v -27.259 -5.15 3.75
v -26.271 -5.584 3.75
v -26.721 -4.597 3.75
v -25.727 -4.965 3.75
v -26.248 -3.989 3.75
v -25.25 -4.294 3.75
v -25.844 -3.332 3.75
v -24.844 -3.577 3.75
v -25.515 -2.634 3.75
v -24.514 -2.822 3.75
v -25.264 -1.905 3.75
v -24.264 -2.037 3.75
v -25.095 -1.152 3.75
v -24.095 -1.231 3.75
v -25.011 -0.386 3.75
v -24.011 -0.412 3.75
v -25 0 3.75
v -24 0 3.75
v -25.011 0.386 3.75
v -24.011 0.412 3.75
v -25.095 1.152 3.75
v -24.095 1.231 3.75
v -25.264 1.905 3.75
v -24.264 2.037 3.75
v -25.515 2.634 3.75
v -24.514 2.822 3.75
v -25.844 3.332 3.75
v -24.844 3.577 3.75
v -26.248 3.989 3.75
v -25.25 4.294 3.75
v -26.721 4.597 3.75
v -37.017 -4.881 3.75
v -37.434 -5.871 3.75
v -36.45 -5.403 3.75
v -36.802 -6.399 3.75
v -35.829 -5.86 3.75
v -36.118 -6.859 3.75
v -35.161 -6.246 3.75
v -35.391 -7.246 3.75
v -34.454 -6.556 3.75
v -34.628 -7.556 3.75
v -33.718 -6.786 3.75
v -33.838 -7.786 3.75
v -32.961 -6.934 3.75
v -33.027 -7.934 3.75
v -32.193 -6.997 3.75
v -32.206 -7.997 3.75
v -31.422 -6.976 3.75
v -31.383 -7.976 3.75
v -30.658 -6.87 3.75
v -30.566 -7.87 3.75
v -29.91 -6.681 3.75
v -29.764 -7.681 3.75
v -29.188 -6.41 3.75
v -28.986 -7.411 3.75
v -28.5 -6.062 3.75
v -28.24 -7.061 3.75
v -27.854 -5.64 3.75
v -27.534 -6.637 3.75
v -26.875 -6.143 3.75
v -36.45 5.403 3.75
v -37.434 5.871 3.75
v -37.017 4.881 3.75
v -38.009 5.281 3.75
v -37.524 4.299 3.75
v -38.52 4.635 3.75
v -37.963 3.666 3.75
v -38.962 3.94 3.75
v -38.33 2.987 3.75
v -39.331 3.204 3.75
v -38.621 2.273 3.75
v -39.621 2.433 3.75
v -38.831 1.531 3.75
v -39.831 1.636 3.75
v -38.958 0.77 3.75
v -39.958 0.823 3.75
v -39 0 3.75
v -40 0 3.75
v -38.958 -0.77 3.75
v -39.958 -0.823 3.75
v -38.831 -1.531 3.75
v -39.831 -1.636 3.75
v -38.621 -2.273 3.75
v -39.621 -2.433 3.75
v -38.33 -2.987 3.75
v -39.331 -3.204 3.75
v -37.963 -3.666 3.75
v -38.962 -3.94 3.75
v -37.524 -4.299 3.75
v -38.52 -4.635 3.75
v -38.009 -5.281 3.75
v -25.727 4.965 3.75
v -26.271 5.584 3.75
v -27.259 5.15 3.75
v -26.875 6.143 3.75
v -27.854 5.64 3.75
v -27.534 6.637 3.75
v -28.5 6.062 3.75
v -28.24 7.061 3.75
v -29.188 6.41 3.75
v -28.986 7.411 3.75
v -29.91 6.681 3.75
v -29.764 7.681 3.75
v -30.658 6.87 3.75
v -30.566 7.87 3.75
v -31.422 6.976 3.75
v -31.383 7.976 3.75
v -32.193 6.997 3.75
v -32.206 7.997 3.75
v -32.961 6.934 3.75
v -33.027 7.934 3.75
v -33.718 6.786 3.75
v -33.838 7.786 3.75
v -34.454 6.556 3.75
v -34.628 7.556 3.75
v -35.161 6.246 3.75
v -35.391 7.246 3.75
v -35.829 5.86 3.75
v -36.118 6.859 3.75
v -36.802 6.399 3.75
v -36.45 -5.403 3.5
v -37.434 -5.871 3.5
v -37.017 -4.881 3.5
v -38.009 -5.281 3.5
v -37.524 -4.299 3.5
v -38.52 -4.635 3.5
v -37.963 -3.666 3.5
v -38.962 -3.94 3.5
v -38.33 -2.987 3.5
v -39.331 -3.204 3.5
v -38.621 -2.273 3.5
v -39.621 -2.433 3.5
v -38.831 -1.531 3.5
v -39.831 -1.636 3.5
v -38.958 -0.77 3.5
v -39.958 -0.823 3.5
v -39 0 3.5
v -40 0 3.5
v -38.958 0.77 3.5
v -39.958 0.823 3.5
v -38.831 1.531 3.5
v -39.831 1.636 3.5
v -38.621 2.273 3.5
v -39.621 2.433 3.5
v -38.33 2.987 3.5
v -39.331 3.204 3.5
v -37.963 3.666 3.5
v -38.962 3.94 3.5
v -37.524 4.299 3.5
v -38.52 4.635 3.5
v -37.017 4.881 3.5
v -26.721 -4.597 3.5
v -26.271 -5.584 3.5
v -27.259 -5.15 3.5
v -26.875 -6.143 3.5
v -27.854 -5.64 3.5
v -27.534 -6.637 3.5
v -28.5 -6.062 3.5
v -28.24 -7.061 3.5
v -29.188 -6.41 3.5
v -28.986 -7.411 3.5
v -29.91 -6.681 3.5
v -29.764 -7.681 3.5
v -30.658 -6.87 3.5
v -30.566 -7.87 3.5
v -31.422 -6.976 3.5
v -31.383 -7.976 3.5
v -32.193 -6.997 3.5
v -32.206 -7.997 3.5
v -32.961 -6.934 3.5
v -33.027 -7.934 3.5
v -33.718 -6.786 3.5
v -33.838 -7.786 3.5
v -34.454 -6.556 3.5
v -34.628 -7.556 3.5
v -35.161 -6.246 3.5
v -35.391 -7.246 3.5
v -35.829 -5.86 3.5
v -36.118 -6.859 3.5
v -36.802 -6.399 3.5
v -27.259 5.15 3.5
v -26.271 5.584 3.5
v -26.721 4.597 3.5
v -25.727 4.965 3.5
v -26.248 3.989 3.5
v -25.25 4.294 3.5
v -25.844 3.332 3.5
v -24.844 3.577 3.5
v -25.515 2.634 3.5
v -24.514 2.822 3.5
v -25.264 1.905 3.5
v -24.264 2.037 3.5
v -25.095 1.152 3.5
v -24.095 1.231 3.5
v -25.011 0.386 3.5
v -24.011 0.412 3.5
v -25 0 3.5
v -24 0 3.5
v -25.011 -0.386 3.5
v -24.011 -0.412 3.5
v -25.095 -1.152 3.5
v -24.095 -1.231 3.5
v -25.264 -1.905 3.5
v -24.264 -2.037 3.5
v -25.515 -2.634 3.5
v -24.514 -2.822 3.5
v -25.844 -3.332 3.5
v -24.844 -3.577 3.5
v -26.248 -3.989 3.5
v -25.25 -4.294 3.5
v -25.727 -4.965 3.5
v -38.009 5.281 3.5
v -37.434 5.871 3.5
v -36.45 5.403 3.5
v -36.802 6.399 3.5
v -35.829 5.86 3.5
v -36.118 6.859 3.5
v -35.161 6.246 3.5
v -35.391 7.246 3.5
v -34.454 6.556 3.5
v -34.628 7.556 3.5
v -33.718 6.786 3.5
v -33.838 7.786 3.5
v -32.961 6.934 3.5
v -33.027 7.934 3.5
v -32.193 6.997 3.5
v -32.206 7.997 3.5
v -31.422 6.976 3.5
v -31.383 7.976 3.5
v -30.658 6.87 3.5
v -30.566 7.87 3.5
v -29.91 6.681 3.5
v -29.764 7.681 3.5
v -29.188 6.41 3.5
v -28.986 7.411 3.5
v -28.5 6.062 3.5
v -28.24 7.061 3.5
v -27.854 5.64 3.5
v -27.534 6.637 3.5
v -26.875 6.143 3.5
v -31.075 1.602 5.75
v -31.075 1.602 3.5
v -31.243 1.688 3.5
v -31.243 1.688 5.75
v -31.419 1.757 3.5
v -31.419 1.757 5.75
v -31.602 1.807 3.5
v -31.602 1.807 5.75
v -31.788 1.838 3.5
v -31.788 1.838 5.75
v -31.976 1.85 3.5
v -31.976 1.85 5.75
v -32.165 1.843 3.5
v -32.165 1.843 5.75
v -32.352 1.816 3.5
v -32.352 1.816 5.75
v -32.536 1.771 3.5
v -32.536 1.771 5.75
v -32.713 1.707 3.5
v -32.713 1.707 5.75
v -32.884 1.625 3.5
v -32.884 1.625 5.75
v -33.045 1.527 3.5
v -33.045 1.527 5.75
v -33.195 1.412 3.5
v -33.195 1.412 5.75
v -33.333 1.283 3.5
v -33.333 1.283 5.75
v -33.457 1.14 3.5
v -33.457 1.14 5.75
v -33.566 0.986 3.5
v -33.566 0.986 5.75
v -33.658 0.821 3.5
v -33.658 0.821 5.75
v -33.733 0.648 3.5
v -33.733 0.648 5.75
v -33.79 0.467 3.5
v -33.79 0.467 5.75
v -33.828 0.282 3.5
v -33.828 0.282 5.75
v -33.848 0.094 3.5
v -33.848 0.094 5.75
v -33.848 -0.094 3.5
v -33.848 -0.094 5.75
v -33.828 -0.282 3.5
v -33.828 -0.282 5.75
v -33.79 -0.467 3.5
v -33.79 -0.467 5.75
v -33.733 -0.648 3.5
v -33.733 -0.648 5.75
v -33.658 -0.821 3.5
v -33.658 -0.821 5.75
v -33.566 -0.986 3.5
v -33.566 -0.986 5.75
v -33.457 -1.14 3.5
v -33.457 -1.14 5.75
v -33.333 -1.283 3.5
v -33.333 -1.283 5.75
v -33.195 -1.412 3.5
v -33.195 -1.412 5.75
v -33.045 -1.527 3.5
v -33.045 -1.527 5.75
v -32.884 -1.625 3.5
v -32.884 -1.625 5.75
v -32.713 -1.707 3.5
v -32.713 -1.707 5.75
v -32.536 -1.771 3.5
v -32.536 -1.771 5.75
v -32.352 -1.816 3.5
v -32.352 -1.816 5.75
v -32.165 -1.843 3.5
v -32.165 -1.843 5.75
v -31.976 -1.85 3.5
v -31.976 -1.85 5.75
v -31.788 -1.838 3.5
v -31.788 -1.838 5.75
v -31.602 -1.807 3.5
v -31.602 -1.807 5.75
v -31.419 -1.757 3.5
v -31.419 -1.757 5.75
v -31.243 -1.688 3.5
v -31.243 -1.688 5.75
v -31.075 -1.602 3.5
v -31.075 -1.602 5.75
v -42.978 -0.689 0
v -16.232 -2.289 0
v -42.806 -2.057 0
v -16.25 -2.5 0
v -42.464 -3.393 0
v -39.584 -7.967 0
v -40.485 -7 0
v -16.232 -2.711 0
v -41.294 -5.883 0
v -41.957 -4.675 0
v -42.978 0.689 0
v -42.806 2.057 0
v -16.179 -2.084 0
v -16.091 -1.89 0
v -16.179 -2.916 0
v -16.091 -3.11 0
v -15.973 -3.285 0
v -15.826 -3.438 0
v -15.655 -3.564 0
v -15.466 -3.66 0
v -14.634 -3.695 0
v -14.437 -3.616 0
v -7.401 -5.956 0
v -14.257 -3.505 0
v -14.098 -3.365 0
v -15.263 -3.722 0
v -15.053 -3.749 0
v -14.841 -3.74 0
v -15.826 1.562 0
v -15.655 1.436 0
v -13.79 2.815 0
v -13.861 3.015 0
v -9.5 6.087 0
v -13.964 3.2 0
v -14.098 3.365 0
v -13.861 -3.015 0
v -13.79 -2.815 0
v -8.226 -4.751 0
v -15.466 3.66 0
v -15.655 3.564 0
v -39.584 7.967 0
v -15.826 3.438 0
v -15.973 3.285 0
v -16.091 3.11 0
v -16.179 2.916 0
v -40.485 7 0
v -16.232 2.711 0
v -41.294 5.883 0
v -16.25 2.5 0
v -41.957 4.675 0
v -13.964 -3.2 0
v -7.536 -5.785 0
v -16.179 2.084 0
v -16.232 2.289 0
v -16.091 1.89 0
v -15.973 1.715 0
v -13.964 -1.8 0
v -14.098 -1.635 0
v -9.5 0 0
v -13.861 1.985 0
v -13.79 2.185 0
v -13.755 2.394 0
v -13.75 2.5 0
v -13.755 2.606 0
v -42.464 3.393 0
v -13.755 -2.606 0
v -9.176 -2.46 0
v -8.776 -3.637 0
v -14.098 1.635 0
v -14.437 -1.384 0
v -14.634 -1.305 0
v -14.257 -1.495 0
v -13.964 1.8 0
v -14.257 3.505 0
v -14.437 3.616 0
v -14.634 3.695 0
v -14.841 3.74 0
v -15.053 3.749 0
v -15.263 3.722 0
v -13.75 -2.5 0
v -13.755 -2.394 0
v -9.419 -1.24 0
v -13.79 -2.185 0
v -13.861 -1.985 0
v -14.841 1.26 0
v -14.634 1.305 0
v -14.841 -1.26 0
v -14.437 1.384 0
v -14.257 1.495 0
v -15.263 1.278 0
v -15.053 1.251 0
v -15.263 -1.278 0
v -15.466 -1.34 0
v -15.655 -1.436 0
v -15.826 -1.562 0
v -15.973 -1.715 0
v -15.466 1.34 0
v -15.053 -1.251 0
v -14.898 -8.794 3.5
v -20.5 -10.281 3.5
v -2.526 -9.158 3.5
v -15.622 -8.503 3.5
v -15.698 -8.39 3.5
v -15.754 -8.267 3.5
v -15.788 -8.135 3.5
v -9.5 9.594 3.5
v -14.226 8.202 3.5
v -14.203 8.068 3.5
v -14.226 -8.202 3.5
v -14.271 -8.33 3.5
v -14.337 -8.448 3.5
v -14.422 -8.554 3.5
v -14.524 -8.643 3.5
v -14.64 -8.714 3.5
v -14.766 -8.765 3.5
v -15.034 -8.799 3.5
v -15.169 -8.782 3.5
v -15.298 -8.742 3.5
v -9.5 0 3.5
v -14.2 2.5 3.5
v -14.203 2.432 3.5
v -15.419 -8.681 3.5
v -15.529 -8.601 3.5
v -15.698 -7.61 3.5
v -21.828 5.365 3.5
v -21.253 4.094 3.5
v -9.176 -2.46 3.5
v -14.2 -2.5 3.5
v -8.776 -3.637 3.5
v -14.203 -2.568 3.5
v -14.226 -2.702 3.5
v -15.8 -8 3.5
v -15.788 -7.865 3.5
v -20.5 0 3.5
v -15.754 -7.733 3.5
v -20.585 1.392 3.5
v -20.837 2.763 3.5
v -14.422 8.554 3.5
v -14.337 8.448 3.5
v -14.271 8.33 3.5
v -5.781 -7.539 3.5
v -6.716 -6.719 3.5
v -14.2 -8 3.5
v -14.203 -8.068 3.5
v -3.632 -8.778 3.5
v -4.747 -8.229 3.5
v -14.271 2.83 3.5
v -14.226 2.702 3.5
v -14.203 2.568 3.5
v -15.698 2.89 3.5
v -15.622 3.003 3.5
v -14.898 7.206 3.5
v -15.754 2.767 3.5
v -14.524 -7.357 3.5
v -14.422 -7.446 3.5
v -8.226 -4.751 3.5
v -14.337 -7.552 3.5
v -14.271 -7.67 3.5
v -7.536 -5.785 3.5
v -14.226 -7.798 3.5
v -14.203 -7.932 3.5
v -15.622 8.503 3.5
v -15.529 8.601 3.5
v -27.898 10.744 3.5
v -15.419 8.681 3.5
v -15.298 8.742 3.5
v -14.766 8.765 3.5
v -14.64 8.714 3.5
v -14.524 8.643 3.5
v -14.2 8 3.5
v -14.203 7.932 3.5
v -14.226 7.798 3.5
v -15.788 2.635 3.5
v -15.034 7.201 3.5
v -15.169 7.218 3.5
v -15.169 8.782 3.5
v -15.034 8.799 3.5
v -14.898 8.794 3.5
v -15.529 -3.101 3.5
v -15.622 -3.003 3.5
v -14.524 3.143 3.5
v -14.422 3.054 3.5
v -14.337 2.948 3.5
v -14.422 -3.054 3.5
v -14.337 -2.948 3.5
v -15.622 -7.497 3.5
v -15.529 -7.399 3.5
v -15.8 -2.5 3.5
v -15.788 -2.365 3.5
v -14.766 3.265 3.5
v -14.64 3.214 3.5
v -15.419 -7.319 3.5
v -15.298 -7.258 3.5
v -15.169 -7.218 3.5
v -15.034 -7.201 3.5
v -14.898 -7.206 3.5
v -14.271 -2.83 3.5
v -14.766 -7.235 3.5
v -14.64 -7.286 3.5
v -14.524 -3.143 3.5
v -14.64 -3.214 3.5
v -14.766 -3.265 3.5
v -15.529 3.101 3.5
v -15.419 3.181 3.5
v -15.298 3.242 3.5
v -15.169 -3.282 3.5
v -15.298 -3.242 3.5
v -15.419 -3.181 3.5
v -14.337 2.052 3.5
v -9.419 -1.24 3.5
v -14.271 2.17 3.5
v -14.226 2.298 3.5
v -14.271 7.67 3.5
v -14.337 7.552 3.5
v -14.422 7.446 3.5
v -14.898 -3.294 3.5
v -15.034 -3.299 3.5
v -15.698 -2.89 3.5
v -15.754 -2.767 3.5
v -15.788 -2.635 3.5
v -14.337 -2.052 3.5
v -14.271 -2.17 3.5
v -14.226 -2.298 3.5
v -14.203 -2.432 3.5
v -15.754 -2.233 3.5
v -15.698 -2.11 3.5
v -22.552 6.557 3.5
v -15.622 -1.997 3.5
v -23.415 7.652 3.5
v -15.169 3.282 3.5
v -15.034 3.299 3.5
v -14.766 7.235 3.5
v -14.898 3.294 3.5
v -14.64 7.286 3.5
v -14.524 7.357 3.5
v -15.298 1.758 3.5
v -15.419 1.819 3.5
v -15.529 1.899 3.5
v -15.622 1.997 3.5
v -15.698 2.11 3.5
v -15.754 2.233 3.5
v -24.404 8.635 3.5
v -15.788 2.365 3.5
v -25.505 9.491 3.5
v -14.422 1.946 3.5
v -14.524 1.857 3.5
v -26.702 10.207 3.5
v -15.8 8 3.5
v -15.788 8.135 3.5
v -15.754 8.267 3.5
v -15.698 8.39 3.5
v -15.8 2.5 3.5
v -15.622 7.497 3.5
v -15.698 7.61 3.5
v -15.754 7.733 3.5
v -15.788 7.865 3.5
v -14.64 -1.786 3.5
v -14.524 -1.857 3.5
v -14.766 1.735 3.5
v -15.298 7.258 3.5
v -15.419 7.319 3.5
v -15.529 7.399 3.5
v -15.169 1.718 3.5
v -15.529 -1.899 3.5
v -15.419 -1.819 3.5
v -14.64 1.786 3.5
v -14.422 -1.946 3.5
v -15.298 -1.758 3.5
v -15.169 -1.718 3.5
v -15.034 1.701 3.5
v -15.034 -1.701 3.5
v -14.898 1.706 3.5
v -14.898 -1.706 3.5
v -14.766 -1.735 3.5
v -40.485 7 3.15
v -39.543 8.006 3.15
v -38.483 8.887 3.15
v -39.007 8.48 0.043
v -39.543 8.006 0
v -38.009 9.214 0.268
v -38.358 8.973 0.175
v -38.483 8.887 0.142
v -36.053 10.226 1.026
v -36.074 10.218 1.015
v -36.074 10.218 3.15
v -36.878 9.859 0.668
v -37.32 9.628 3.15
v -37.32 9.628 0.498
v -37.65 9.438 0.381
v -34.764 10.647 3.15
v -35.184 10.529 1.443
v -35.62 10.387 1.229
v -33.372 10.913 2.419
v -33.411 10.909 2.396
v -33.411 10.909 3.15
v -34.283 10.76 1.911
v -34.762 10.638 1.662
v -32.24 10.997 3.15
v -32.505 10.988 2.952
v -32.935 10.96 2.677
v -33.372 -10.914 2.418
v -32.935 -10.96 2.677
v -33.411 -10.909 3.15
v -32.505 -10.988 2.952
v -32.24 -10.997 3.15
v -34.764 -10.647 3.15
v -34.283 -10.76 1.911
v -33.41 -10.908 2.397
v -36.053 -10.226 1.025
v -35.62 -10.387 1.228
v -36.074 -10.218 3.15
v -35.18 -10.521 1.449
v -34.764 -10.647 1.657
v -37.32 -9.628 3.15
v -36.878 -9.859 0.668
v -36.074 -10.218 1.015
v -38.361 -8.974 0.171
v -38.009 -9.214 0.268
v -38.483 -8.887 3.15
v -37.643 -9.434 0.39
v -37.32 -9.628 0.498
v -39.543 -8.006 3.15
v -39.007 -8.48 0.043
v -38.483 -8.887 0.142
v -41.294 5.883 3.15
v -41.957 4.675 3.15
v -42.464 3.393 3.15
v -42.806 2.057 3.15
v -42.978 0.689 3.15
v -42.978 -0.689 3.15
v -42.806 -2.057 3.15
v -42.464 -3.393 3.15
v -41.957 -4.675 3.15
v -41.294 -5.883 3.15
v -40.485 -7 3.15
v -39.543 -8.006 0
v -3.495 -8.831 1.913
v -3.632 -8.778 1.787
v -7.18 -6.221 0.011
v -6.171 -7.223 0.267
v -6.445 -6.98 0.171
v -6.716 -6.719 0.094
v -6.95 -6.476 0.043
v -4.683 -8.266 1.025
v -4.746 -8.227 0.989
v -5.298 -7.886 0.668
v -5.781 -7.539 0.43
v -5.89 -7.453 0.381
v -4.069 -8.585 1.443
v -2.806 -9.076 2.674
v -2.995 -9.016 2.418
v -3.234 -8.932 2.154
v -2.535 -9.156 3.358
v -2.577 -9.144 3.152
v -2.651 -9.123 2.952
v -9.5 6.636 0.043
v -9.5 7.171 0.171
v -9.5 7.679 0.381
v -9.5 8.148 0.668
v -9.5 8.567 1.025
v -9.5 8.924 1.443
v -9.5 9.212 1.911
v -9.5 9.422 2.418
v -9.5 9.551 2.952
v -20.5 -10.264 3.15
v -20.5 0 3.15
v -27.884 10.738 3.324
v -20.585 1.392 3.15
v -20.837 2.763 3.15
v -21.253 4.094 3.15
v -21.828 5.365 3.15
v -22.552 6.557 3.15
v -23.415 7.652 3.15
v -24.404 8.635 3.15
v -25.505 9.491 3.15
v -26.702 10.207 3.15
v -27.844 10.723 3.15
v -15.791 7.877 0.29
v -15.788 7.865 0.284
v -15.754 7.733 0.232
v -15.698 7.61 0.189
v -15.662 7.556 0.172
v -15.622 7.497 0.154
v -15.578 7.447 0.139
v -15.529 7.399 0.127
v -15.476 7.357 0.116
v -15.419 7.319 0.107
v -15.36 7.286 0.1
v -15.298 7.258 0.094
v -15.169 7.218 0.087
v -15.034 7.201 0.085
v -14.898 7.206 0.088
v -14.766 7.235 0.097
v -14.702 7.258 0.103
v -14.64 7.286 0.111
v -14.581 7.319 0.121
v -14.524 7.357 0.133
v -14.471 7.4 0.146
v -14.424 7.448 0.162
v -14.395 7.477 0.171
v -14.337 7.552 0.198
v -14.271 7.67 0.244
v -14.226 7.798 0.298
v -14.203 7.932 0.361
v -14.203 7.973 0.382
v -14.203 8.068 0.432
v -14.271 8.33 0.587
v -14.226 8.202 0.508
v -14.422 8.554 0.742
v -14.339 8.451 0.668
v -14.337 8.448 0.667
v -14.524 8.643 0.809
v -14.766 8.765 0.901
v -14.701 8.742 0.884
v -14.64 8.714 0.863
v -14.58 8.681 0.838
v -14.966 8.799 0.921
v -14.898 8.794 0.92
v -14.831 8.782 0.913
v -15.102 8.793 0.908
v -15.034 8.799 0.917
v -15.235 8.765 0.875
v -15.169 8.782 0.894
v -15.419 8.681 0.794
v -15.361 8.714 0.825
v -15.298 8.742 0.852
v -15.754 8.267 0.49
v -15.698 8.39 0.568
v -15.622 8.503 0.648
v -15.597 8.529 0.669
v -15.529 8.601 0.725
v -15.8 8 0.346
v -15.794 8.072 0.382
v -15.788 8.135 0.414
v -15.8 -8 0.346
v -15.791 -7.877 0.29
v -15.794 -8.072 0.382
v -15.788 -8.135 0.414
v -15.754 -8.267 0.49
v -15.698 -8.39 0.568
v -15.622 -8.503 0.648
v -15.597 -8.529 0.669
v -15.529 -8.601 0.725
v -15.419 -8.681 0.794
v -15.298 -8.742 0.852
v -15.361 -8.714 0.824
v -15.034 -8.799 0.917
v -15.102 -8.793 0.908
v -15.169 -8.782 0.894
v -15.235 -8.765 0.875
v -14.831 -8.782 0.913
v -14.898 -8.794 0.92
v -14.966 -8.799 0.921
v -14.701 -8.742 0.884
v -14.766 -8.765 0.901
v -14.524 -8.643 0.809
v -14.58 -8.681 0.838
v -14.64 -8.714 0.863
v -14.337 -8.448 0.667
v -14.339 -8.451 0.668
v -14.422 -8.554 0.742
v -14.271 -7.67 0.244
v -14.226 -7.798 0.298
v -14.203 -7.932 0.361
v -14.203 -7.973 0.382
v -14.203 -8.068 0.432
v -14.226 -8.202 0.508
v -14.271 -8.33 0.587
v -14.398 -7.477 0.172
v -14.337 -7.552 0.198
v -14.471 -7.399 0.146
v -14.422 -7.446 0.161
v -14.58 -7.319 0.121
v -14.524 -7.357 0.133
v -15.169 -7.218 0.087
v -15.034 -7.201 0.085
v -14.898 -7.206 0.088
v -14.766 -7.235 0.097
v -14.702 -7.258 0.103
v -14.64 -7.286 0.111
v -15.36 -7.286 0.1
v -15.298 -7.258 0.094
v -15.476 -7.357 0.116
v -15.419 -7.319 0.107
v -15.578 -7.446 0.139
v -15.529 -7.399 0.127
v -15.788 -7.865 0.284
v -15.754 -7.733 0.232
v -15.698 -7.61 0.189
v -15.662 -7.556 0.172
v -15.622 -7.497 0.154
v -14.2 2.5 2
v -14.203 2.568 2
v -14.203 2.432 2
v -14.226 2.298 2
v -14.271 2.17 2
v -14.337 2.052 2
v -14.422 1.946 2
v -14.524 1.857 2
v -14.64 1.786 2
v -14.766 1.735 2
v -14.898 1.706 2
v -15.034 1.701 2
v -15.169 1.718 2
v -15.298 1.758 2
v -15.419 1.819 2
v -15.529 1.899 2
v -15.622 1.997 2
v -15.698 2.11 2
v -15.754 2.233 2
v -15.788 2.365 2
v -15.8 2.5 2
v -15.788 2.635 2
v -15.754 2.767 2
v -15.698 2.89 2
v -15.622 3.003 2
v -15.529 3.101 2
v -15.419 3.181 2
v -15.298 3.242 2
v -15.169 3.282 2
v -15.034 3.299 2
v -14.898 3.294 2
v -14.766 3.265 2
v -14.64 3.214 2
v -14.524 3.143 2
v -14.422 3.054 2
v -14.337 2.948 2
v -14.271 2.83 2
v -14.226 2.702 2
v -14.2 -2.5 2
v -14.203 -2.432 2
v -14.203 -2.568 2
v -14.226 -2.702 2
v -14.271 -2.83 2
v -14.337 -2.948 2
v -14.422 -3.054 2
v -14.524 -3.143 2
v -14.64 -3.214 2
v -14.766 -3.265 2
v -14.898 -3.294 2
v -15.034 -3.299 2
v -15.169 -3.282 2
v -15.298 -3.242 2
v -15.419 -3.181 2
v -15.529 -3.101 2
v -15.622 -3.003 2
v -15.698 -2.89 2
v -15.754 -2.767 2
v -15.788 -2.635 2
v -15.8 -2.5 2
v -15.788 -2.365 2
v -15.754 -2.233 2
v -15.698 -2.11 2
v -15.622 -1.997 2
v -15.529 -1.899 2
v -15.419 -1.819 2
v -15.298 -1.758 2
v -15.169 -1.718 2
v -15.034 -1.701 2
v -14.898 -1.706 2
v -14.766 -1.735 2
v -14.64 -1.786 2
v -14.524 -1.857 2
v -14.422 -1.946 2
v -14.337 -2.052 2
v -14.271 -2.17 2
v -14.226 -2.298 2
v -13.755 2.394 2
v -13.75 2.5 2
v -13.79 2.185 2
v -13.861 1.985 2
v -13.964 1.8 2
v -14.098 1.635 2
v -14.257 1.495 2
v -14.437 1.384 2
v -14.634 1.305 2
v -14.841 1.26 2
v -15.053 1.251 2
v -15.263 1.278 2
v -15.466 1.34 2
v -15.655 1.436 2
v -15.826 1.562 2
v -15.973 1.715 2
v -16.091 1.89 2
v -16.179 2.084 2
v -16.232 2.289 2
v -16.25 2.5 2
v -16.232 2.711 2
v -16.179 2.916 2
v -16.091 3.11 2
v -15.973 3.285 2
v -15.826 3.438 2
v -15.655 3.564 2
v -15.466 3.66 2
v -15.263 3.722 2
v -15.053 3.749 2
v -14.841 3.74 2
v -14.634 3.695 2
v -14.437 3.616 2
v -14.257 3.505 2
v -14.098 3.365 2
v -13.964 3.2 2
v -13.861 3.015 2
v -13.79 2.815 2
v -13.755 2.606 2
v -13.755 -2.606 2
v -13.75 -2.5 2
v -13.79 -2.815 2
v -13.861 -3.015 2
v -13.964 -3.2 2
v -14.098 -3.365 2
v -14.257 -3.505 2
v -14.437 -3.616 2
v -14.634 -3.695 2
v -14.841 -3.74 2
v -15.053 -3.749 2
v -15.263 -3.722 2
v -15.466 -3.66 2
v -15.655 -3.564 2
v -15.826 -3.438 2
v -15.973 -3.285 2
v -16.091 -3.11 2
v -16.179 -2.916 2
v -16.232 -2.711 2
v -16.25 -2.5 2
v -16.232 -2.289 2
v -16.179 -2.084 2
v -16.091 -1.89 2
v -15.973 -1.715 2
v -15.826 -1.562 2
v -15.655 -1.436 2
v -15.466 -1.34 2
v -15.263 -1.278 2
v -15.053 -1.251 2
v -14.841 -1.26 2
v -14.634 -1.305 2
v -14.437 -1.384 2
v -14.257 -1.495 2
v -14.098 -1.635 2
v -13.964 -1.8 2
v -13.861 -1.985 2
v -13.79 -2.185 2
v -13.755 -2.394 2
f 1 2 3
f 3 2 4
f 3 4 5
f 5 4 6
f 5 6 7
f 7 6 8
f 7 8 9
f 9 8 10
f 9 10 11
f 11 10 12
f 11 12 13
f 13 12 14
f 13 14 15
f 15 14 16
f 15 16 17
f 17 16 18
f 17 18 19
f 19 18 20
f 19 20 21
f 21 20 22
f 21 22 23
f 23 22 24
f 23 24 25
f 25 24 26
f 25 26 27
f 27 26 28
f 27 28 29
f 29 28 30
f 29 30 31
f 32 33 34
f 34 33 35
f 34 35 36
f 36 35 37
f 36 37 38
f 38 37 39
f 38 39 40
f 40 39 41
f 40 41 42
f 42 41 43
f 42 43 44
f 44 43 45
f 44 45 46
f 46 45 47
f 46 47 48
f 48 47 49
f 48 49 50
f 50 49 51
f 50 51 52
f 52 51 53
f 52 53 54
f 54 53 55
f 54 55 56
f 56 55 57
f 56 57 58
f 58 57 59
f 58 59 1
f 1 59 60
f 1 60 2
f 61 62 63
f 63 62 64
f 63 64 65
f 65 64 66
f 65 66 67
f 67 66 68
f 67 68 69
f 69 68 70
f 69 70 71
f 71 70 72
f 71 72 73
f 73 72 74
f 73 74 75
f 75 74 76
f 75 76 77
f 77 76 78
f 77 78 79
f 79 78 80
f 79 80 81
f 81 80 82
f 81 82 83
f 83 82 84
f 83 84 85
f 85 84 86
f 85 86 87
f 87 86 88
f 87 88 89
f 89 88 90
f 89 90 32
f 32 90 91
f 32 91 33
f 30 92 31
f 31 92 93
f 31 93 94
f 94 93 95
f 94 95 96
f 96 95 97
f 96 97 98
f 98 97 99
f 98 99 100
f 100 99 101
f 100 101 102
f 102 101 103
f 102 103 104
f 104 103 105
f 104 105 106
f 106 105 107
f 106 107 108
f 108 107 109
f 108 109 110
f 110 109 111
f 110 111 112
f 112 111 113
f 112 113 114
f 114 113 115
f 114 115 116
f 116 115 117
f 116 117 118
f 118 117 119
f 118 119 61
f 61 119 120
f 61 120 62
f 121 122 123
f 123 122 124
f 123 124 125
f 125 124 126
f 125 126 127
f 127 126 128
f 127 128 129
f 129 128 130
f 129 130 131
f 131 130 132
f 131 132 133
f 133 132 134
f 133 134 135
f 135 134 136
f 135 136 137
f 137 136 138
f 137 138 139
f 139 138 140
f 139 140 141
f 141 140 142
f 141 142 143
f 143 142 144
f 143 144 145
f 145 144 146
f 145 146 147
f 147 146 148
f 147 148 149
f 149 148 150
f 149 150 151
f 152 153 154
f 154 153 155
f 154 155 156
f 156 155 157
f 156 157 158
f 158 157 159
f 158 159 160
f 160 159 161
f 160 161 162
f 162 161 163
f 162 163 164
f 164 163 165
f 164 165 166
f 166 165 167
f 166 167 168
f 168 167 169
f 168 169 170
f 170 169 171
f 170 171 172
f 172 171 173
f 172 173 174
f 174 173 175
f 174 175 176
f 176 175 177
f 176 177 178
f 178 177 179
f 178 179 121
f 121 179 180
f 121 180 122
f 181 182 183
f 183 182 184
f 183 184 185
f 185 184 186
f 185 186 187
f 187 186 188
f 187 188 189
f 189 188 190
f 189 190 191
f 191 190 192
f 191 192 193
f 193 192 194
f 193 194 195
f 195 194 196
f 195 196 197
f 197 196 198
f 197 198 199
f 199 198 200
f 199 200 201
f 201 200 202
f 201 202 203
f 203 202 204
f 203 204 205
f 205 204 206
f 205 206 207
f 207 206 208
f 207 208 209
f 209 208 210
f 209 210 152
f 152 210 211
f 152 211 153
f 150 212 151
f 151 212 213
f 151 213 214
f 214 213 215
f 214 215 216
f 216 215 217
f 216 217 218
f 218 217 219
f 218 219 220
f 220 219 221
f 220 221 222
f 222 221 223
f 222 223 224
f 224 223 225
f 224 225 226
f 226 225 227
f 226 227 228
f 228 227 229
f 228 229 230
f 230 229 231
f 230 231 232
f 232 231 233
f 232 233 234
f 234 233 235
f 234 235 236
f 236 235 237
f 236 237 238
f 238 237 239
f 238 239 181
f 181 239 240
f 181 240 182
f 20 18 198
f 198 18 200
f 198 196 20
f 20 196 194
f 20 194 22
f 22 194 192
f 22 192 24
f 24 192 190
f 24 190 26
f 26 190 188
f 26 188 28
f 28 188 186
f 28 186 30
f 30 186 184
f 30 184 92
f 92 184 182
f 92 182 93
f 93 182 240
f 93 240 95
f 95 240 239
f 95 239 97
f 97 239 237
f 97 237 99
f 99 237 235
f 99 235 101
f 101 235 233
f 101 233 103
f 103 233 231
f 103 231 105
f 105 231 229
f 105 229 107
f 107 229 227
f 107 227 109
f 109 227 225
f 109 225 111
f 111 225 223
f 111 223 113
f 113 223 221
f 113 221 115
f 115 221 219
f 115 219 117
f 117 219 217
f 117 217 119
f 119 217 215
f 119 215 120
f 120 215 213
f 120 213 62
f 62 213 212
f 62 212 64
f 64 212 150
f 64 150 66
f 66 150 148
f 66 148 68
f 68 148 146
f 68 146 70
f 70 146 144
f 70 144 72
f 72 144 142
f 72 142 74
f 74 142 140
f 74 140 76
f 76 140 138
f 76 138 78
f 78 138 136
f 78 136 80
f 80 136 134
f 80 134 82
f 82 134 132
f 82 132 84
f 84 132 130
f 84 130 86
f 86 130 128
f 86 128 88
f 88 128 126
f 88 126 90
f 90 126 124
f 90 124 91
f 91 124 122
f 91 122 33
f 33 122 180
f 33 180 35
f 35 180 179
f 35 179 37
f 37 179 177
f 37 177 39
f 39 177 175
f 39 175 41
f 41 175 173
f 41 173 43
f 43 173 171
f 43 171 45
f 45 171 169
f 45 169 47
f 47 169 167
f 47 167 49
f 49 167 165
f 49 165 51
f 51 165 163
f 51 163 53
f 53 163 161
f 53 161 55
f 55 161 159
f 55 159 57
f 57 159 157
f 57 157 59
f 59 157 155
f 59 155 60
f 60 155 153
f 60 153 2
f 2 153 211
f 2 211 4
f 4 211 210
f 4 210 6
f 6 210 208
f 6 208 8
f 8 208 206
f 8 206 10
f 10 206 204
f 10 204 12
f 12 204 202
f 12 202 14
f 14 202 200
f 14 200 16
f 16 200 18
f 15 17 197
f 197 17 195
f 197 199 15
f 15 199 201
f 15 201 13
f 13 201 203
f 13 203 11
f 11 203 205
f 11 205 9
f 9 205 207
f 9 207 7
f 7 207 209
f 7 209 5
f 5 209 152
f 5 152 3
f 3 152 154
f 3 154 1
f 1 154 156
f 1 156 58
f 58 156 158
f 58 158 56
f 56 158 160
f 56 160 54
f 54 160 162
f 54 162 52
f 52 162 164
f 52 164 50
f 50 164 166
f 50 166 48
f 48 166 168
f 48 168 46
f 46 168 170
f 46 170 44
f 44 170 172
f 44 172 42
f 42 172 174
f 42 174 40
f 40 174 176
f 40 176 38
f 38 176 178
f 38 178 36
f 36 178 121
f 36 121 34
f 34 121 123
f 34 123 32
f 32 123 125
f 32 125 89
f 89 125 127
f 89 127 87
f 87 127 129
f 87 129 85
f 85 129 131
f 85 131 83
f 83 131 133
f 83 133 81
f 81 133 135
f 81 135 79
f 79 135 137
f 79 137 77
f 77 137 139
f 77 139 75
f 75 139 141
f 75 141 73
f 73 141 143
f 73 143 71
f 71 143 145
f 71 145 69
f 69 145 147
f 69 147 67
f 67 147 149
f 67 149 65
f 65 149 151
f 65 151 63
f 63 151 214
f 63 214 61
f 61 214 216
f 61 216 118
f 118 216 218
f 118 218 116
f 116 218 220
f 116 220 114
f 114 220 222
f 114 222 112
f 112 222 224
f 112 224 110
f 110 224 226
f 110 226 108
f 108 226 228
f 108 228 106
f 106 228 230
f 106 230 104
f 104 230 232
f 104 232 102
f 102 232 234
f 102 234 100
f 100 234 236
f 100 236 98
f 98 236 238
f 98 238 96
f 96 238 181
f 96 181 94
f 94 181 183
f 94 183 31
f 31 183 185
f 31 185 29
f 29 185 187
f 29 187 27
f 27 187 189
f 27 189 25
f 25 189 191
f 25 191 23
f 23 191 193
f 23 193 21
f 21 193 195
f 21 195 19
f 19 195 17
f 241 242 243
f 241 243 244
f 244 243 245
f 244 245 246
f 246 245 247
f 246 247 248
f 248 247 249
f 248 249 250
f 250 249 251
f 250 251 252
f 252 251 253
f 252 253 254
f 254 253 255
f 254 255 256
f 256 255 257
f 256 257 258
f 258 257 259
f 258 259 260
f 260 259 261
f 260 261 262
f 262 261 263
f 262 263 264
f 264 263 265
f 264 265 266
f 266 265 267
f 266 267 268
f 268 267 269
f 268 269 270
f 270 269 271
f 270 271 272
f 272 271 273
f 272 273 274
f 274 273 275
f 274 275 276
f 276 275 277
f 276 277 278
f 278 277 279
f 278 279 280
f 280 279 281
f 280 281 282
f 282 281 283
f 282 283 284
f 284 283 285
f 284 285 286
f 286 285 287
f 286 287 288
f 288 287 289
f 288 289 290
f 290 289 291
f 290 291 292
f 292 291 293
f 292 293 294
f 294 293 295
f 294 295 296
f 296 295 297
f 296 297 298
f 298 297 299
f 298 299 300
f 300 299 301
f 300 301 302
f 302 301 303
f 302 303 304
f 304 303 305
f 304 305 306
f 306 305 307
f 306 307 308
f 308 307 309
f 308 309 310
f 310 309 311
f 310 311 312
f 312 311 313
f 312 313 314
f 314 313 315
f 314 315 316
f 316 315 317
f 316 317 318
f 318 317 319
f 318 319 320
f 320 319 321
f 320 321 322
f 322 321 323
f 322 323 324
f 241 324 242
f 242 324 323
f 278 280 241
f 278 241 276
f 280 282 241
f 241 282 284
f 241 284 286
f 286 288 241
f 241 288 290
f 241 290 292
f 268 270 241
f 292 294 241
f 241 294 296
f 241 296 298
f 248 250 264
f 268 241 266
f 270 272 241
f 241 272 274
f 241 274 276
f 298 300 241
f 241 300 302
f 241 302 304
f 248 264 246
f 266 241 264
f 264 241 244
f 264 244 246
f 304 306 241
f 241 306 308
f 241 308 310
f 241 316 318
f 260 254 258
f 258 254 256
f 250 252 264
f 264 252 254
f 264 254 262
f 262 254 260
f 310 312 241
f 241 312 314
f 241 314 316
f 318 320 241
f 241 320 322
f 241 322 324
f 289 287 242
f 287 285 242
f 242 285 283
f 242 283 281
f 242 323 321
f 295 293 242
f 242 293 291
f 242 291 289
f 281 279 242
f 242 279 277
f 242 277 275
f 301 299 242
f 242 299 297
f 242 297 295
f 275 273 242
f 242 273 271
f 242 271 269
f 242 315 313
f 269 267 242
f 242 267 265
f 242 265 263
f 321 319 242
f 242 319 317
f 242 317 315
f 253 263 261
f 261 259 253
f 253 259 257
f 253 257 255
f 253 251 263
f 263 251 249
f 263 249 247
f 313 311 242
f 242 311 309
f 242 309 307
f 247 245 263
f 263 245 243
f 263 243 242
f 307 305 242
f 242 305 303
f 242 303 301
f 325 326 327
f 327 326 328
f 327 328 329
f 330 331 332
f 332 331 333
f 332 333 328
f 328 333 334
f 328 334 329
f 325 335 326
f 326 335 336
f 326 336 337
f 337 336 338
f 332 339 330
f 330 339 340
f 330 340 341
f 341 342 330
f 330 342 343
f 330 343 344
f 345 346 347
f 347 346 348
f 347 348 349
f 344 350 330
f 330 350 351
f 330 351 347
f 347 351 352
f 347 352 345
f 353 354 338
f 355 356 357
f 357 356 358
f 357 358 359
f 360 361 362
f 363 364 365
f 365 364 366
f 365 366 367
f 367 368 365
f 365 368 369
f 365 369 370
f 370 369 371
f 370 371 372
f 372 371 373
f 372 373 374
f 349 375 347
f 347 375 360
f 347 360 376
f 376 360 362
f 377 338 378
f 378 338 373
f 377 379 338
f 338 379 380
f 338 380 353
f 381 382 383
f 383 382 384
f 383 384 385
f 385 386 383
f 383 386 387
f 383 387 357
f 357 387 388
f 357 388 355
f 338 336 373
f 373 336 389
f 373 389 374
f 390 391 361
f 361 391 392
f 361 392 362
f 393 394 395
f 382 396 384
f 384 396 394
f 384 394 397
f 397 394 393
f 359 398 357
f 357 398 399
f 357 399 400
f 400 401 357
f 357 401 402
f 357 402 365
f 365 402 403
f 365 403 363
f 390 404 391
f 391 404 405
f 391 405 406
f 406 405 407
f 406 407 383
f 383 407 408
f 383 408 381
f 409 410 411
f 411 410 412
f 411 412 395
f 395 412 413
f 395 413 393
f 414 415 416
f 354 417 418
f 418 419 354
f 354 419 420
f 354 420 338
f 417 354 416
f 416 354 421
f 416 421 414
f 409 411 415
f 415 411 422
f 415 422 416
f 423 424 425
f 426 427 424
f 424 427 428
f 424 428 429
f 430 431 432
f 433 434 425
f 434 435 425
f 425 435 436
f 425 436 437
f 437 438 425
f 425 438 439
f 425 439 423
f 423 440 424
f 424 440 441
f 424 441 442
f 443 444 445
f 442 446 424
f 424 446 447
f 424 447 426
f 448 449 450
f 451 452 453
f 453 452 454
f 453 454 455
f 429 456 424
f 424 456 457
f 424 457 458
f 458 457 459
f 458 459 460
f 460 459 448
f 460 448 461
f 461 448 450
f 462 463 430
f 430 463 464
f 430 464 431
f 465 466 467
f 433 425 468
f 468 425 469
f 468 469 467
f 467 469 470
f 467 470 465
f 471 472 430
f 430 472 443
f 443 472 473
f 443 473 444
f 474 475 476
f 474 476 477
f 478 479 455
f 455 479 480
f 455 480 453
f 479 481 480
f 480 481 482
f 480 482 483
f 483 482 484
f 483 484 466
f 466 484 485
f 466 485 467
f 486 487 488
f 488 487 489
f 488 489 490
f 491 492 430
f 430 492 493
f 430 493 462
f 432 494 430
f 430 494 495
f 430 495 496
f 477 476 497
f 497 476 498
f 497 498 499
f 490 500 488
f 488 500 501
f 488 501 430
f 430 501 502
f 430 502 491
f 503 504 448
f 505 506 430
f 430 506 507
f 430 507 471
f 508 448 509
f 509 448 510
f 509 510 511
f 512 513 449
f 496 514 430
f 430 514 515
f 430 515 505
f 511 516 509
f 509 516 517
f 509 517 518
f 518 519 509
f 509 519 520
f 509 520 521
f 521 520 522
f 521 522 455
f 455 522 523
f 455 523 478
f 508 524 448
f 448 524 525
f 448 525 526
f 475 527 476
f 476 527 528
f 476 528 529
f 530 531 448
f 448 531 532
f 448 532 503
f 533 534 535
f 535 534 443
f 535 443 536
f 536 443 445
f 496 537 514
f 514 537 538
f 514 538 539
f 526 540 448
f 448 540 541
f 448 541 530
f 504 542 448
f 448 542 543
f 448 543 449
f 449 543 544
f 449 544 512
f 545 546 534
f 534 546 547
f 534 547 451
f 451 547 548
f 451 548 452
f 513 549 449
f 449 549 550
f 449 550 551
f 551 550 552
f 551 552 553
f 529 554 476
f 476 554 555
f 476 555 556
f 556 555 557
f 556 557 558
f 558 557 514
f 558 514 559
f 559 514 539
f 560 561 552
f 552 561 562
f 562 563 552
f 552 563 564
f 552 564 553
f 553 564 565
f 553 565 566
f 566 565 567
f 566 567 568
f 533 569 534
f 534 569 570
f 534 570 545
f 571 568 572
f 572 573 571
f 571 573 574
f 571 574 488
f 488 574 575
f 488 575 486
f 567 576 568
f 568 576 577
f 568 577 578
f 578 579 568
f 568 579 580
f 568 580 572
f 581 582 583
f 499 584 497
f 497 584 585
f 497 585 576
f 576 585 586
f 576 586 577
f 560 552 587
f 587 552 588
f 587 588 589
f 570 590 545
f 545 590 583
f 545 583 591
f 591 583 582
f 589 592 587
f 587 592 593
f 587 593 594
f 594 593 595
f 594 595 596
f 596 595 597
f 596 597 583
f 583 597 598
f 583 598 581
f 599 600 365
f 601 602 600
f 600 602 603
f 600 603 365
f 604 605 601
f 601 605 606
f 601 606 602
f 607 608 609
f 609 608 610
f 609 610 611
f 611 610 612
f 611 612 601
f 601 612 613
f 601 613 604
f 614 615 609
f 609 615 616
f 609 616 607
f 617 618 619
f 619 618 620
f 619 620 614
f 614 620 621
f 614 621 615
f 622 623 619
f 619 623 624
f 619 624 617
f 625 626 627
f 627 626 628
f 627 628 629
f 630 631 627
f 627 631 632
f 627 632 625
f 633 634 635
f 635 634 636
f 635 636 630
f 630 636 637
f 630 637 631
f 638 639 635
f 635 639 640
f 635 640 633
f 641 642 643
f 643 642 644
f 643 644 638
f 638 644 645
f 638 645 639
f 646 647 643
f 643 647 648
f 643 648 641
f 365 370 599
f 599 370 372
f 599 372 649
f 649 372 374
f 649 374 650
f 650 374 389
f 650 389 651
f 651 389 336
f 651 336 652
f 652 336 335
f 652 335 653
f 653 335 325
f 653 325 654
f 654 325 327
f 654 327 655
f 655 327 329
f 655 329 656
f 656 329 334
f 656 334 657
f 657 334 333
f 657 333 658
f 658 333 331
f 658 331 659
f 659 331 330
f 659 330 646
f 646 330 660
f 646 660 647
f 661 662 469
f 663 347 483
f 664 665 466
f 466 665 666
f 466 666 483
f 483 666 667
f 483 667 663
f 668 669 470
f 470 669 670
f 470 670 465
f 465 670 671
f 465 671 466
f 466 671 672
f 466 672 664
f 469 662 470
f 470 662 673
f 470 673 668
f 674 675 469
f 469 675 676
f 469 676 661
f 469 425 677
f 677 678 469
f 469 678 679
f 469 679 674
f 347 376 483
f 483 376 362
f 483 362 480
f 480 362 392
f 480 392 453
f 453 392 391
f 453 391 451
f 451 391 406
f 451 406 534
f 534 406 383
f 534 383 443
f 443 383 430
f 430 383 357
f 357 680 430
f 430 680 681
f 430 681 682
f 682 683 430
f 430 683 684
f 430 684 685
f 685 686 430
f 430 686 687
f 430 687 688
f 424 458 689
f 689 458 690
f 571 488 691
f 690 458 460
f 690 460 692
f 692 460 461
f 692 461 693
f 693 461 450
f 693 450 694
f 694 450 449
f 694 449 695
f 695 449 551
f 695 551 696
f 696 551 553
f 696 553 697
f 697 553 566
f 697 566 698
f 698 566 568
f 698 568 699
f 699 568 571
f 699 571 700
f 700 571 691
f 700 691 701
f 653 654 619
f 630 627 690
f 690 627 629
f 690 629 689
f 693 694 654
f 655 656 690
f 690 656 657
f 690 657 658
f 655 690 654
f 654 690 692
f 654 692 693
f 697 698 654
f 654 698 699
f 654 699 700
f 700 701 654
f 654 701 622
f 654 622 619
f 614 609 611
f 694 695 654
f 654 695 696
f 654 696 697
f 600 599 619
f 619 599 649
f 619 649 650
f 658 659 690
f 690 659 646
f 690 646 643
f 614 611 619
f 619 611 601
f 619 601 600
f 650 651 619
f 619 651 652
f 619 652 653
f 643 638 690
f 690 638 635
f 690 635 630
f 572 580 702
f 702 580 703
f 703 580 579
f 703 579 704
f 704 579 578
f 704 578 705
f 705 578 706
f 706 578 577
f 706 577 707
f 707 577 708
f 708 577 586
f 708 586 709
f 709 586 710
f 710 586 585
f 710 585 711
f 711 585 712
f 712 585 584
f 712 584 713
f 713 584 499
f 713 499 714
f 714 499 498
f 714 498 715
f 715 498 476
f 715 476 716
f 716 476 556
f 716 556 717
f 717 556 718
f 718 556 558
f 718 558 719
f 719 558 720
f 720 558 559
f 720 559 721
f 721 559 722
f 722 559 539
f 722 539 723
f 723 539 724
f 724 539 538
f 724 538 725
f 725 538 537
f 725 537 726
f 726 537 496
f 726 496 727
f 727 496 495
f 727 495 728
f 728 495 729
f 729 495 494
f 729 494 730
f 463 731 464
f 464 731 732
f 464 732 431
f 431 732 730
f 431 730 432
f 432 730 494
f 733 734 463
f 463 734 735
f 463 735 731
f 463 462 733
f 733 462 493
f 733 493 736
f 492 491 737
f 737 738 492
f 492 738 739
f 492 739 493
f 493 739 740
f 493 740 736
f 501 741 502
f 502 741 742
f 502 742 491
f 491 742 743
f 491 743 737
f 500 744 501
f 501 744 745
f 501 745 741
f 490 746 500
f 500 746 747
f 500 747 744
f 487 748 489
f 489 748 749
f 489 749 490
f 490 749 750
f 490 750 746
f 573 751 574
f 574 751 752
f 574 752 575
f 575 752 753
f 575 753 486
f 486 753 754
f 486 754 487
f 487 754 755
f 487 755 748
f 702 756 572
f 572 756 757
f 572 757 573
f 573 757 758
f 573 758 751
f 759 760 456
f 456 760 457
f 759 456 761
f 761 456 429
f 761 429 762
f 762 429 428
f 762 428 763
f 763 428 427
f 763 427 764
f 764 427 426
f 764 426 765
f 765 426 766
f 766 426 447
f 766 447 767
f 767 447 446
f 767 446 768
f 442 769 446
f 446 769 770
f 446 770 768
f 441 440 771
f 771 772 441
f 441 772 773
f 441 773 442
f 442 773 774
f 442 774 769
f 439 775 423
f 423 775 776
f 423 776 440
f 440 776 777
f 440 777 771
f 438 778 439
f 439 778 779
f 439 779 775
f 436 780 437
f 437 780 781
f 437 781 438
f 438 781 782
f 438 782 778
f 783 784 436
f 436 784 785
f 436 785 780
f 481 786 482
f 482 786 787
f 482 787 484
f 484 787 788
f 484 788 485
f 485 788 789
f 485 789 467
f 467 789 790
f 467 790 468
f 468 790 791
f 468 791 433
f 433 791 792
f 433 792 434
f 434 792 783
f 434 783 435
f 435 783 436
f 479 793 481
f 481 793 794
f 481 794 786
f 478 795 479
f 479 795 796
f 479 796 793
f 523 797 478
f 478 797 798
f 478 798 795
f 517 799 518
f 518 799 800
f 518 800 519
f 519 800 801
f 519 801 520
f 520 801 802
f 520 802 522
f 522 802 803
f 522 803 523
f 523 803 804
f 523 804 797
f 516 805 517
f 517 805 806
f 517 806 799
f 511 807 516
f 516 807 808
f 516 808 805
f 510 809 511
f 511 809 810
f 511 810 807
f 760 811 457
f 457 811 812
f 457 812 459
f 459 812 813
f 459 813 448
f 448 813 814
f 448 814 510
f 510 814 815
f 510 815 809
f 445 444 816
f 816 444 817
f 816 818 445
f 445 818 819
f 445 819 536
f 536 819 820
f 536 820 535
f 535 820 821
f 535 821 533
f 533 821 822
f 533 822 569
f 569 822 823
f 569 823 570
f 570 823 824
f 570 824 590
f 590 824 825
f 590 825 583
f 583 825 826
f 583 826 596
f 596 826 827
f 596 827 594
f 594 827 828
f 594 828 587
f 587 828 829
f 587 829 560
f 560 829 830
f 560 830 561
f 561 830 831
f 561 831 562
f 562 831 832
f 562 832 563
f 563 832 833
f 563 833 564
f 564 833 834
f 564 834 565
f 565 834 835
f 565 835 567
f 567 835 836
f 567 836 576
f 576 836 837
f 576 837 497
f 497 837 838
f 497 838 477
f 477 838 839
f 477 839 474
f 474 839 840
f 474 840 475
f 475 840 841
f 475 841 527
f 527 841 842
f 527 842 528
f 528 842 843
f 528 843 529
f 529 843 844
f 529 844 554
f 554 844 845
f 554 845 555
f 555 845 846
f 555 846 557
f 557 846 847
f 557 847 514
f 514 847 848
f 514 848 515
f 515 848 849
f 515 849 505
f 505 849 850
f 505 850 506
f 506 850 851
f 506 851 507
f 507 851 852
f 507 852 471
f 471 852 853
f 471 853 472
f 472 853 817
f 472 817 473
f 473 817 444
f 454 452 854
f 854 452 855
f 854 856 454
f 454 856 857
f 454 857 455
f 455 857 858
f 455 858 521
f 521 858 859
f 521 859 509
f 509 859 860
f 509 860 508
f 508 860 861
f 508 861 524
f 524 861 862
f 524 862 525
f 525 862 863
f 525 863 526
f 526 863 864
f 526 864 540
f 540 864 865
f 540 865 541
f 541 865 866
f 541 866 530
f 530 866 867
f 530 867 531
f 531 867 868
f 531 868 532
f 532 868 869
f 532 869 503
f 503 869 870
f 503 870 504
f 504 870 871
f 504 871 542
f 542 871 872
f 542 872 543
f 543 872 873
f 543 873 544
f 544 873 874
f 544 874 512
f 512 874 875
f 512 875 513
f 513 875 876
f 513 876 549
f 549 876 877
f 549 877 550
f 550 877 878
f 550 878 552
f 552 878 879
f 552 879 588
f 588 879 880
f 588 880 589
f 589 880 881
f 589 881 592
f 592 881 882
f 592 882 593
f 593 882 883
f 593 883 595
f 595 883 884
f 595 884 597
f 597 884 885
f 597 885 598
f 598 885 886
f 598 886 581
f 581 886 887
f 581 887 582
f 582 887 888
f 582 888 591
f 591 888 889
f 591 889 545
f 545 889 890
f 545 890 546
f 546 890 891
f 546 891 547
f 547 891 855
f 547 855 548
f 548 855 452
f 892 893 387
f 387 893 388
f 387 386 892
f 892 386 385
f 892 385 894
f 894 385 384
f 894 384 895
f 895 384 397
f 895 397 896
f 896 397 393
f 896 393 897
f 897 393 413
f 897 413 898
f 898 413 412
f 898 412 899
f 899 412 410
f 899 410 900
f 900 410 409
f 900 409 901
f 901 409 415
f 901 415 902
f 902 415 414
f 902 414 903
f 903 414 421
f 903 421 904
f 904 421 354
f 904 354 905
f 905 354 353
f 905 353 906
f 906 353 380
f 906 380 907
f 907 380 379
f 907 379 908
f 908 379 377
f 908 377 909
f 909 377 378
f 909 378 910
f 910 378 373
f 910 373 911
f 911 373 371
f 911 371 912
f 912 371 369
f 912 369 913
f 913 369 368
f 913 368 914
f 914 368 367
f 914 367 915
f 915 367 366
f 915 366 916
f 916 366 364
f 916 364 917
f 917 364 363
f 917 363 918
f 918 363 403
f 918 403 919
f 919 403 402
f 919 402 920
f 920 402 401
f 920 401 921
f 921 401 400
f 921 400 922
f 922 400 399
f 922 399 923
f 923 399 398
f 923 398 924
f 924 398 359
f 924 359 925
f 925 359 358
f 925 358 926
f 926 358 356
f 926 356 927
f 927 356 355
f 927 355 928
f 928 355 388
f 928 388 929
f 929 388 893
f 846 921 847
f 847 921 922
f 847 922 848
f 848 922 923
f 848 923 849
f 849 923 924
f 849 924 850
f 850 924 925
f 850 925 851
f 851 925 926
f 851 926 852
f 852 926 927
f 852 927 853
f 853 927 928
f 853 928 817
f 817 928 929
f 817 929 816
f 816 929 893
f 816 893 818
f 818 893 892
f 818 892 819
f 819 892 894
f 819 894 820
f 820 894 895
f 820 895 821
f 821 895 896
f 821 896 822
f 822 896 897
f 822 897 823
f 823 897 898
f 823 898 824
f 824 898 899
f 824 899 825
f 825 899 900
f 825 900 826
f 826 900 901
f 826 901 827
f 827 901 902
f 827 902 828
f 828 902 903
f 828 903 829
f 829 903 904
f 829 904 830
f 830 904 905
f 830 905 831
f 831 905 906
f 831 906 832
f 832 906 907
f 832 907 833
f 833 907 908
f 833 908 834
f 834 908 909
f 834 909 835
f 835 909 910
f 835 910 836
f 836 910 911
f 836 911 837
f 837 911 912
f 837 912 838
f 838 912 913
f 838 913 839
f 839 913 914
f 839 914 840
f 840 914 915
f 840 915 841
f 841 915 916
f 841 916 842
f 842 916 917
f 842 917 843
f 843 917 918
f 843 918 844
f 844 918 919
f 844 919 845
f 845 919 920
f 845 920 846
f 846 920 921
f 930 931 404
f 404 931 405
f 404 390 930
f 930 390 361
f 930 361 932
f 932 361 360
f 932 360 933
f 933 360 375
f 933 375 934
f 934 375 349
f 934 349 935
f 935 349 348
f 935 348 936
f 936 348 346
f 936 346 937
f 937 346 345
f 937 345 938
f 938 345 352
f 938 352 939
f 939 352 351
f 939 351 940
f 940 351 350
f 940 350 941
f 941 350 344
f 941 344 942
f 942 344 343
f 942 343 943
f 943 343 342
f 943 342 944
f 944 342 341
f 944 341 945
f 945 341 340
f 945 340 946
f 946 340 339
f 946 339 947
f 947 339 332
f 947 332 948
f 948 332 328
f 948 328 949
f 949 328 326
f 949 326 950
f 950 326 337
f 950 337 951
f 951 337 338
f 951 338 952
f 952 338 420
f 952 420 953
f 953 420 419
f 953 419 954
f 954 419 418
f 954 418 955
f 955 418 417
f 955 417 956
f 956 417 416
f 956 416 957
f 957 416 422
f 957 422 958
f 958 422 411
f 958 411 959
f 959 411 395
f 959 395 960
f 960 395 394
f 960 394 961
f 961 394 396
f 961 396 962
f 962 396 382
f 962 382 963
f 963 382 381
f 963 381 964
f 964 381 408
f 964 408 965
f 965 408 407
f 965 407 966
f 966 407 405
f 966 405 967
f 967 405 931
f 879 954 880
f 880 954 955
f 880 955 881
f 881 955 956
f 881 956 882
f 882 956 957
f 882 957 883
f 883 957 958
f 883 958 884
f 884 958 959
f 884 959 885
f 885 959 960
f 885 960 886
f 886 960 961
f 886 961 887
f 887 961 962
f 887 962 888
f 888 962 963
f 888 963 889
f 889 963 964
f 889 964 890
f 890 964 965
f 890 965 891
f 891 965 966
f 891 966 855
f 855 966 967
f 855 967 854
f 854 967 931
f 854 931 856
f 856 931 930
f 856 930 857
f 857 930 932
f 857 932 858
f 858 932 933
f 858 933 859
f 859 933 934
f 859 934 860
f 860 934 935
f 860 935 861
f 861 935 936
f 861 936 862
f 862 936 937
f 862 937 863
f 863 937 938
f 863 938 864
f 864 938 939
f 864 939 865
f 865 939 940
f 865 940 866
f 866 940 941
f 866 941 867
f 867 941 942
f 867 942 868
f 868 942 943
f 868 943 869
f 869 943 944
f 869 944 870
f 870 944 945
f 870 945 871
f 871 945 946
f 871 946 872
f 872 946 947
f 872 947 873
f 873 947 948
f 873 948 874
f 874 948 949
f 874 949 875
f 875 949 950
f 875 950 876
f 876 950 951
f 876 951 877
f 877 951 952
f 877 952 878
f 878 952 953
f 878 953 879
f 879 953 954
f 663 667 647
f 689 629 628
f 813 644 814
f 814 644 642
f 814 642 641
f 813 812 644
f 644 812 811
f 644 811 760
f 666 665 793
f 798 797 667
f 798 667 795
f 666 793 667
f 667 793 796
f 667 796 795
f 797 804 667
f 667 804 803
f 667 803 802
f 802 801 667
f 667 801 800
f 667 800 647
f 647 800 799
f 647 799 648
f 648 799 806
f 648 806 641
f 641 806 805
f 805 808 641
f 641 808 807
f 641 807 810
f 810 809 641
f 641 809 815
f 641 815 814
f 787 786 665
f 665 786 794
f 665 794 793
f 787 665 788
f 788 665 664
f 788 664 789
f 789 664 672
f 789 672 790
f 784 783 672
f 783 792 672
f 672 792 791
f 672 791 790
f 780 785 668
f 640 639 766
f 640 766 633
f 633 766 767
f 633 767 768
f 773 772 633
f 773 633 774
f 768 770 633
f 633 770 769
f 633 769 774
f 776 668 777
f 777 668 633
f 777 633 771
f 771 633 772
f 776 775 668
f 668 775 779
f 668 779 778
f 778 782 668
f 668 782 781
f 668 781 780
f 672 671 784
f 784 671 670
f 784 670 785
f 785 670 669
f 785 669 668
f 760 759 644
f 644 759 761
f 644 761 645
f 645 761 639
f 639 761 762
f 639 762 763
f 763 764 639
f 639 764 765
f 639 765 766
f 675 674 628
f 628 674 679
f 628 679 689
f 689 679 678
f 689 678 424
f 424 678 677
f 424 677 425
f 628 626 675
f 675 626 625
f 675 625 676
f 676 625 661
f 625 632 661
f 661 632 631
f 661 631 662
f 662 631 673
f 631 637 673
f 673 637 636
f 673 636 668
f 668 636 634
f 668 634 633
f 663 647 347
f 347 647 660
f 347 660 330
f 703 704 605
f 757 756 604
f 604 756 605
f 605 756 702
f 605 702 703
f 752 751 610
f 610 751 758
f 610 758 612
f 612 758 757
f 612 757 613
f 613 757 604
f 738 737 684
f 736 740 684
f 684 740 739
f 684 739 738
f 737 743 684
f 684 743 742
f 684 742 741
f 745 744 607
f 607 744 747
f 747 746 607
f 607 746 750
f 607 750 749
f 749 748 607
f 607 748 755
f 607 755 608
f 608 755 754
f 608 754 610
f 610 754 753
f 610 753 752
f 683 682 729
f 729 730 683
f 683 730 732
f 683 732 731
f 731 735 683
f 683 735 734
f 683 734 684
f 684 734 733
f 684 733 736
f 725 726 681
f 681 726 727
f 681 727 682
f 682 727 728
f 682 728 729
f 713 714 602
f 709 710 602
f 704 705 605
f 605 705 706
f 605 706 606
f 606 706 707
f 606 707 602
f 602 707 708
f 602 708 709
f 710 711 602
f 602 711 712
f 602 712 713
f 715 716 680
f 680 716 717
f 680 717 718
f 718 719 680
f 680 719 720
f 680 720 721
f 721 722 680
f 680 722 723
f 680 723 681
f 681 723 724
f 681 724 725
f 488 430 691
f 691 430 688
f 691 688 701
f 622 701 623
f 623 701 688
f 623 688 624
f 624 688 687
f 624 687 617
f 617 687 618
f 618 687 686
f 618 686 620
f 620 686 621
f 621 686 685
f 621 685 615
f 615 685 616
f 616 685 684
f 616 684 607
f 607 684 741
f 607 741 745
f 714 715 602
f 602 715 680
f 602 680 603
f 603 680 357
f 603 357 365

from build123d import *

# Parameters (mm, degrees)
BOSS_EXTRUDE1_DEPTH = 3.5
JOINT_START         = 3.5
SKETCH7_R           = 11.5
JOINT_HOLE_DEPTH    = 0.35
POT_START           = 3.5
POT_INSERT_DEPTH    = 2.25
FRICTION_START      = 3.5
SKETCH4_R           = 8
SKETCH4_R_2         = 7
FRICTION_DEPTH      = 0.25
SKETCH2_R           = 0.8
SCREW_HOLES_DEPTH   = 45.755586244
SKETCH8_R           = 1.25
SCREW_HEADS_DEPTH   = 2
FILLET1_START       = -42.937682511
FILLET1_DEPTH       = 40.937682511
FILLET1_2_DEPTH     = 33.456183015


with BuildPart() as part:
    # Sketch1 → Boss-Extrude1 (new body)
    with BuildSketch(Plane.XY):
        with BuildLine():
            ThreePointArc((-2.526427532, -9.157901721), (-7.558143342, -5.755386106), (-9.5, 0))
            Line((-9.5, 0), (-9.5, 9.59375))
            Line((-9.5, 9.59375), (-32, 11))
            ThreePointArc((-32, 11), (-43, 0), (-32, -11))
            Line((-32, -11), (-2.526427532, -9.157901721))
        make_face()
    extrude(amount=BOSS_EXTRUDE1_DEPTH)

    # Sketch7 → Joint Hole (cut)
    with BuildSketch(Plane.XY.offset(JOINT_START)):
        with Locations((-32, 0)):
            Circle(SKETCH7_R)
        with BuildLine():
            Line((-20.5, -11.5), (-20.5, 0))
            ThreePointArc((-20.5, 0), (-23.868272016, -8.131727984), (-32, -11.5))
            Line((-32, -11.5), (-20.5, -11.5))
        make_face()
    extrude(amount=-JOINT_HOLE_DEPTH, mode=Mode.SUBTRACT)

    # Sketch2 → Screw Holes (cut, through all)
    with BuildSketch(Plane.XY):
        with Locations((-15, 8)):
            Circle(SKETCH2_R)
        with Locations((-15, -8)):
            Circle(SKETCH2_R)
        with Locations((-15, 2.5)):
            Circle(SKETCH2_R)
        with Locations((-15, -2.5)):
            Circle(SKETCH2_R)
    extrude(amount=SCREW_HOLES_DEPTH, mode=Mode.SUBTRACT)

    # Sketch8 → Screw Heads (cut)
    with BuildSketch(Plane.XY):
        with Locations((-15, 2.5)):
            Circle(SKETCH8_R)
        with Locations((-15, -2.5)):
            Circle(SKETCH8_R)
    extrude(amount=SCREW_HEADS_DEPTH, mode=Mode.SUBTRACT)

    # Fillet1: read off the stored shape, not the designer's step
    # Fillet1 outline → Fillet1 (cut)
    with BuildSketch(Plane(origin=(0, 0, 0), x_dir=(-0.062378286155180485, 0.9980525784828886, 0), z_dir=(0.9980525784828886, 0.06237828615518048, 0)).offset(FILLET1_START)):
        with BuildLine():
            ThreePointArc((-5.482473206, 0), (-7.95734694, 1.025126266), (-8.982473206, 3.5))
            Line((-8.982473206, 3.5), (-8.982473206, 0))
            Line((-8.982473206, 0), (-5.482473206, 0))
        make_face()
    extrude(amount=FILLET1_DEPTH, mode=Mode.SUBTRACT)

    # Fillet1 2 outline → Fillet1 2 (cut)
    with BuildSketch(Plane(origin=(0, 0, 0), x_dir=(0.062378286155180485, 0.9980525784828886, 0), z_dir=(0.9980525784828886, -0.06237828615518048, 0)).offset(FILLET1_START)):
        with BuildLine():
            Line((8.982473206, 0), (8.982473206, 3.5))
            ThreePointArc((8.982473206, 3.5), (7.95734694, 1.025126266), (5.482473206, 0))
            Line((5.482473206, 0), (8.982473206, 0))
        make_face()
    extrude(amount=FILLET1_2_DEPTH, mode=Mode.SUBTRACT)


with BuildPart() as body_2:
    # Sketch5 → Pot Insert (new body)
    with BuildSketch(Plane.XY.offset(POT_START)):
        with BuildLine():
            Line((-31.075, -1.602146997), (-31.075, 1.602146997))
            ThreePointArc((-31.075, 1.602146997), (-33.85, 0), (-31.075, -1.602146997))
        make_face()
    extrude(amount=POT_INSERT_DEPTH)


with BuildPart() as body_3:
    # Sketch4 → Friction (new body)
    with BuildSketch(Plane.XY.offset(FRICTION_START)):
        with Locations((-32, 0)):
            Circle(SKETCH4_R)
        with Locations((-32, 0)):
            Circle(SKETCH4_R_2, mode=Mode.SUBTRACT)
    extrude(amount=FRICTION_DEPTH)


solid = Compound([part.part, body_2.part, body_3.part])
